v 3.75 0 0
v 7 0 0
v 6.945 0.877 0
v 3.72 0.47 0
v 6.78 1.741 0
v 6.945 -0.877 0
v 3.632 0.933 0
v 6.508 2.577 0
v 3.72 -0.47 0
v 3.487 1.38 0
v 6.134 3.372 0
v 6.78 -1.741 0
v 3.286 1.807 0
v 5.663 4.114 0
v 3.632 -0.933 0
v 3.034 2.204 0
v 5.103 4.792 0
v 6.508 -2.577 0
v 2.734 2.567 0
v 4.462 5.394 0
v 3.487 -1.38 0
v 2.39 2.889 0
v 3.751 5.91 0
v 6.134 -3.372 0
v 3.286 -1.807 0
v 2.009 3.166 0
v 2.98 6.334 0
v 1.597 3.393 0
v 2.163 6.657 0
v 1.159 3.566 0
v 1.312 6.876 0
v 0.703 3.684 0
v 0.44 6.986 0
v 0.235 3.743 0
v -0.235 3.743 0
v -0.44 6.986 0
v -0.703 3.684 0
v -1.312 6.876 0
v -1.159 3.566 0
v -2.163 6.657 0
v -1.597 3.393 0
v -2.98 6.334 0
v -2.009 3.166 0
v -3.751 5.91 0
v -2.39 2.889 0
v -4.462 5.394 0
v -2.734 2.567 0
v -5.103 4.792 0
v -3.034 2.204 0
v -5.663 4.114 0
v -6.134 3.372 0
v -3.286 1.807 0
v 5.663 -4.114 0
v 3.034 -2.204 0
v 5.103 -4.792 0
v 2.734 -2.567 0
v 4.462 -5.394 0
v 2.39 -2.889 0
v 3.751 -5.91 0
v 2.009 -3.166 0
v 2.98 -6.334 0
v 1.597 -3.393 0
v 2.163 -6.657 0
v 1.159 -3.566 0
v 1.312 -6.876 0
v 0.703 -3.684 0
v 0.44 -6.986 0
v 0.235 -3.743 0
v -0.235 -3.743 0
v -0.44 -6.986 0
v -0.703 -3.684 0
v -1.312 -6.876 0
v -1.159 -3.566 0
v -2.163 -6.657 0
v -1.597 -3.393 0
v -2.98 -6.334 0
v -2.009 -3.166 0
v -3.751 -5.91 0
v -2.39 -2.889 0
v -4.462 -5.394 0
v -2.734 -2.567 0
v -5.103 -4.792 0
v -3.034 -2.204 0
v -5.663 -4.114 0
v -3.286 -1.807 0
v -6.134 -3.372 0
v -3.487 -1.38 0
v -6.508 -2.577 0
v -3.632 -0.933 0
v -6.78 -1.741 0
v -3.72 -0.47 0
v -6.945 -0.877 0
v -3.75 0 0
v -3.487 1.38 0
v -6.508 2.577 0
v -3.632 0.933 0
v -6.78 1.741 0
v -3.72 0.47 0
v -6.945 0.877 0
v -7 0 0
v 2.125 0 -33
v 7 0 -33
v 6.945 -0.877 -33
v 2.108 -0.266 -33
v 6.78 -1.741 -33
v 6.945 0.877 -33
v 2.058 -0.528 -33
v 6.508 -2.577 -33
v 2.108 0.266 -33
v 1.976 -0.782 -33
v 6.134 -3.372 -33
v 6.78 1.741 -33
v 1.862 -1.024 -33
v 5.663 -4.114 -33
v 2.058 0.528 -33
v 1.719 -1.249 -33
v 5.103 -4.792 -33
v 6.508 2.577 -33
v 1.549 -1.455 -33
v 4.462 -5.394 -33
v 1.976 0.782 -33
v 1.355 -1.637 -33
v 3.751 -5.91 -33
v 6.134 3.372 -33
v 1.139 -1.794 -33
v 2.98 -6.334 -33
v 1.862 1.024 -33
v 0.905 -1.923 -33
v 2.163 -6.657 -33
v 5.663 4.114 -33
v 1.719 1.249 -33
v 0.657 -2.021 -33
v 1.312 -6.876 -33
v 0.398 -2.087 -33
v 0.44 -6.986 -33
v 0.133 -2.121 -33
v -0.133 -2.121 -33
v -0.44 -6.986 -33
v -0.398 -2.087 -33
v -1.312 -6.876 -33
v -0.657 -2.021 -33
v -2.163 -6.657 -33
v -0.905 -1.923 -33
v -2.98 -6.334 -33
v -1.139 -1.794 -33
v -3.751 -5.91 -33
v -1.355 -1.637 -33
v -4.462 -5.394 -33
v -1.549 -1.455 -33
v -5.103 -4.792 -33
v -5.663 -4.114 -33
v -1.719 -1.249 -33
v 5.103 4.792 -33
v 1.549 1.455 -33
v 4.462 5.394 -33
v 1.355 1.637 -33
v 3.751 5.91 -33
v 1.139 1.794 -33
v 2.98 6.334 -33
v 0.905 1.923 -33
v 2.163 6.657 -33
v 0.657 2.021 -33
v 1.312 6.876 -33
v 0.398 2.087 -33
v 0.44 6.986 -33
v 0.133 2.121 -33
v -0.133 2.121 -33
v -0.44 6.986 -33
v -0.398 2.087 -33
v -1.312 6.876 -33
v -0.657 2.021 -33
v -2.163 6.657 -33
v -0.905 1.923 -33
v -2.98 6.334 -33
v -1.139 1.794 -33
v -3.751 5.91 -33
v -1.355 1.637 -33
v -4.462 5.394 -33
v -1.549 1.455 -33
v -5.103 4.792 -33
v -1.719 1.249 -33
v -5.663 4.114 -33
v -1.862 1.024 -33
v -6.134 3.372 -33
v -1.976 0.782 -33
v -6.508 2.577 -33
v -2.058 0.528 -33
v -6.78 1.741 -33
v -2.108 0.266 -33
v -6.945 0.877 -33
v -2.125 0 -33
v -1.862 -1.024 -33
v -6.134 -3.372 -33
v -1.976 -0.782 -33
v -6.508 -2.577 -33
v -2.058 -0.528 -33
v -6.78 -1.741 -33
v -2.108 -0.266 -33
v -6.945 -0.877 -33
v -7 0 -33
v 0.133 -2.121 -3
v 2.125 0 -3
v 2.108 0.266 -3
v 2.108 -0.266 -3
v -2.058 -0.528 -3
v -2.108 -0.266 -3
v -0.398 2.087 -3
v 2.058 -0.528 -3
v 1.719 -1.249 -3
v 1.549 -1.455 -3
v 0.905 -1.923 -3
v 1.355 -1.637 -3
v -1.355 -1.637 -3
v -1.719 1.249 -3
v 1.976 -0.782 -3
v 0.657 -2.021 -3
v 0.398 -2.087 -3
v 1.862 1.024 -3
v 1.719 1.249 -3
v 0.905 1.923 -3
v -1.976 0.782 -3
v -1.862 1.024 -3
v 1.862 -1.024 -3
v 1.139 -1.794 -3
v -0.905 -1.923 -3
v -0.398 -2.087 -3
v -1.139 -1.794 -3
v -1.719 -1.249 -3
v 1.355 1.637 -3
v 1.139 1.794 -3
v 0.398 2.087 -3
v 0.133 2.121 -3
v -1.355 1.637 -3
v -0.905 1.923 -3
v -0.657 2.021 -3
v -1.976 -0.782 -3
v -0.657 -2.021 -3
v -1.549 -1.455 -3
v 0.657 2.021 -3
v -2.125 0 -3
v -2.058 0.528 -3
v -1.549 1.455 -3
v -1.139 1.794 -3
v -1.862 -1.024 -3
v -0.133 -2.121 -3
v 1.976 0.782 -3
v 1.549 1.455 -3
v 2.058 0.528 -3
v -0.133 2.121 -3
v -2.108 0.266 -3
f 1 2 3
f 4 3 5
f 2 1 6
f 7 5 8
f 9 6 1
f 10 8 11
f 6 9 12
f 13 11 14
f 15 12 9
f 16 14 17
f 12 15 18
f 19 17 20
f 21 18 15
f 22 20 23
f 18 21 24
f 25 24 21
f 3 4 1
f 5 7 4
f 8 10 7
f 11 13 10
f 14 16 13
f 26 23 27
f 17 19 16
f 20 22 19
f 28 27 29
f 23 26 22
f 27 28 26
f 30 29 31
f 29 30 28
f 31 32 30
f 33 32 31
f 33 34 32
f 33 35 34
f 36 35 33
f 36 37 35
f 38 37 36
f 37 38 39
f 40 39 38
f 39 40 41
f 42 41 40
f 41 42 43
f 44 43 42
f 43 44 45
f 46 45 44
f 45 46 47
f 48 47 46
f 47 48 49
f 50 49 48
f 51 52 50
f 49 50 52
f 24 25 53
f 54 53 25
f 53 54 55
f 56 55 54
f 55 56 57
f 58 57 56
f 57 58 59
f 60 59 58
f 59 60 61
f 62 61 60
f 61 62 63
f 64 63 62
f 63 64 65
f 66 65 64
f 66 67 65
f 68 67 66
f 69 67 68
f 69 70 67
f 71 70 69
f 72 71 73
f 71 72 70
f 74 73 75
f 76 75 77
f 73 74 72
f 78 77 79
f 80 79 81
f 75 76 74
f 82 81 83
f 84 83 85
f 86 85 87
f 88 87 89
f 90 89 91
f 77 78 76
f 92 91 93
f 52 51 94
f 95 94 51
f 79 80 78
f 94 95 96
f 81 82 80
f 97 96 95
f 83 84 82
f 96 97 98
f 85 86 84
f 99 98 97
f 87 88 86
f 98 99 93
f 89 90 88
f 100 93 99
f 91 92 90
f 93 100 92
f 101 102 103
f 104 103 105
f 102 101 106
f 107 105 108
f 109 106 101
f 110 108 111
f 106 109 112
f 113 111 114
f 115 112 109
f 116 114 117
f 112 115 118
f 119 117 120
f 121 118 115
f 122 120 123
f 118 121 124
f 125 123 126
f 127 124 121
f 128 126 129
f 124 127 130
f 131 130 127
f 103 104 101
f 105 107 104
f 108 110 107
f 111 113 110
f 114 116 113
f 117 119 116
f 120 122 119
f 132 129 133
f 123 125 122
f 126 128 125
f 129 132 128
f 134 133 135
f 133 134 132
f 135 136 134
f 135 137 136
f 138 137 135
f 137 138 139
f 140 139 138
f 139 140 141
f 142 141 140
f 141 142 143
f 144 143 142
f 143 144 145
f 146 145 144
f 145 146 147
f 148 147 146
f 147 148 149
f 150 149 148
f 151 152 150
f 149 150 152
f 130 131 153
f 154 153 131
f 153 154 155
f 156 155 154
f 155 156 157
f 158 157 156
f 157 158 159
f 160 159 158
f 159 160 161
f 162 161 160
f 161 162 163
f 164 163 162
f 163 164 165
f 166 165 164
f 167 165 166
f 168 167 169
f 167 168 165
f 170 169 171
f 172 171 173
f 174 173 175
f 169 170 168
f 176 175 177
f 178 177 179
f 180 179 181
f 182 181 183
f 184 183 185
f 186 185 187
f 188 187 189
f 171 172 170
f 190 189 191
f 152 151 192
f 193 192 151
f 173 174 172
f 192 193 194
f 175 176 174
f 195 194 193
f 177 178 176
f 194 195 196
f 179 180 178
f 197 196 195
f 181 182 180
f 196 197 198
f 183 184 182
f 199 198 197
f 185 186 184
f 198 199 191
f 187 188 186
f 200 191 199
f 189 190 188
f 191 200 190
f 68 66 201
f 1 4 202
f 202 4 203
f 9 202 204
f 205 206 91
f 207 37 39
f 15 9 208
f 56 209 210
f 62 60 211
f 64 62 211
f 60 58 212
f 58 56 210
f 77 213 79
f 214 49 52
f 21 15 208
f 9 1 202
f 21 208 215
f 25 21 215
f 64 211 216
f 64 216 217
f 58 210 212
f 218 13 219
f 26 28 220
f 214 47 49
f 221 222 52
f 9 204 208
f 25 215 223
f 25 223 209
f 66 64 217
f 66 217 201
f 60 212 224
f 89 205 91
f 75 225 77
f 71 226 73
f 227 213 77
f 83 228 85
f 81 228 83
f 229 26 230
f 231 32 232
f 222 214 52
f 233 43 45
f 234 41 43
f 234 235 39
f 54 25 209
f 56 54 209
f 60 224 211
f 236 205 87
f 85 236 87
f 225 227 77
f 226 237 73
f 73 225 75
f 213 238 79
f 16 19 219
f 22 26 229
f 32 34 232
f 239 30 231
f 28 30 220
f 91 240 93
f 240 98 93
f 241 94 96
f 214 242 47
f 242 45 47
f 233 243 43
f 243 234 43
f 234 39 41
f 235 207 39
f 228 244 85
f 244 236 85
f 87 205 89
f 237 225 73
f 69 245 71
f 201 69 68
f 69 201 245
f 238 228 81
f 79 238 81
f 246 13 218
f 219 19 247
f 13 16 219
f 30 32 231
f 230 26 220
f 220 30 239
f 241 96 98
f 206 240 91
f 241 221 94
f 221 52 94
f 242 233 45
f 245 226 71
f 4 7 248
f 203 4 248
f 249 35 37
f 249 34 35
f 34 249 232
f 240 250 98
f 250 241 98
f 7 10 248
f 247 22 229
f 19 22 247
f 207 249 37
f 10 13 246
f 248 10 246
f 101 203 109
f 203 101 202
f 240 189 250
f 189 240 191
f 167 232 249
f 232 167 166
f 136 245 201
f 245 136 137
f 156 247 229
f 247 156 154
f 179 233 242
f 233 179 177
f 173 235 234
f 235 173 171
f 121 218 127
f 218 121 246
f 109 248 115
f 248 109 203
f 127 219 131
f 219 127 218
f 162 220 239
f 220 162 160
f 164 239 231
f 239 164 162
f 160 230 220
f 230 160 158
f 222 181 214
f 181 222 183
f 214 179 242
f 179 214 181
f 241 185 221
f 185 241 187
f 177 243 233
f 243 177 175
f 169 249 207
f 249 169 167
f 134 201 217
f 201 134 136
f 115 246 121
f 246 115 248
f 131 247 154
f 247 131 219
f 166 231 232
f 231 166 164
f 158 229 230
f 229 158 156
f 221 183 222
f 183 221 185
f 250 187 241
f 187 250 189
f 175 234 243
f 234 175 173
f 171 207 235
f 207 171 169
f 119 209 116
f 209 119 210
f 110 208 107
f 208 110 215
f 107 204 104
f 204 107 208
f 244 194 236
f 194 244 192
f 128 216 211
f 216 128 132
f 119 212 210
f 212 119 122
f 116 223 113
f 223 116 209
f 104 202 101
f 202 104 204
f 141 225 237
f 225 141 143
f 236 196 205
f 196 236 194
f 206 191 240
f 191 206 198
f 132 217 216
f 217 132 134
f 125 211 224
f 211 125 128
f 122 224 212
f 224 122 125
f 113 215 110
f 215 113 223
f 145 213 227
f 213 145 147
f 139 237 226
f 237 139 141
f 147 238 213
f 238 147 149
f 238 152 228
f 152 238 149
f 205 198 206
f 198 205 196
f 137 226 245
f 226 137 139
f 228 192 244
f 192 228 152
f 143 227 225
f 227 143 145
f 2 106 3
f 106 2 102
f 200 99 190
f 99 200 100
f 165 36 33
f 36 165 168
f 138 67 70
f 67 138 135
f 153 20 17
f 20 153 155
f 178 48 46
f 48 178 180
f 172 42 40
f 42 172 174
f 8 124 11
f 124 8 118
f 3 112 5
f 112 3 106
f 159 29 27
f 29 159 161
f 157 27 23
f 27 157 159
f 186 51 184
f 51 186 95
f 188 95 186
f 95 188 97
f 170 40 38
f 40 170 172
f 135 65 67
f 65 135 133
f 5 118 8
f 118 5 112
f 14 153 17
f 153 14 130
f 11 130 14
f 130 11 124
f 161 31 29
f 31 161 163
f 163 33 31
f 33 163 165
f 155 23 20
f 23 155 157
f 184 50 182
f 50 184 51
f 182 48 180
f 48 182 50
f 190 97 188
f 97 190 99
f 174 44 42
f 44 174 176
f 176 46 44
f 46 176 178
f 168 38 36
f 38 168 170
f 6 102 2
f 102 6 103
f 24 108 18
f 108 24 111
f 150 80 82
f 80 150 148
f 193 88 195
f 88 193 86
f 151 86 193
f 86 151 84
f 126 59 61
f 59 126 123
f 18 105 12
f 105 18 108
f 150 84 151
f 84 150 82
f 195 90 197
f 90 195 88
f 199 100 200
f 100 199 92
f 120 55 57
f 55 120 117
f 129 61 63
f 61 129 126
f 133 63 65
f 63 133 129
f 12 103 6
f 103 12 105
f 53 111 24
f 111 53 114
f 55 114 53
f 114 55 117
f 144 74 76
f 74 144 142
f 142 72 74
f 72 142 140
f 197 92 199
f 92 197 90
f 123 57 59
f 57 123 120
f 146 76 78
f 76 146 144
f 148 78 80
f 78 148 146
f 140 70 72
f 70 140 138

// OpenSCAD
$fn = 50;


difference() {
	union() {
		translate(v = [0, 0, -33.0000000000]) {
			cylinder(h = 33, r = 7.0000000000);
		}
		cylinder(h = 0, r = 17.0000000000);
	}
	union() {
		translate(v = [0, 0, 0]) {
			rotate(a = [0, 0, 0]) {
				difference() {
					union() {
						#translate(v = [0, 0, -33.0000000000]) {
							cylinder(h = 33, r = 2.0000000000);
						}
						#translate(v = [0, 0, -3]) {
							cylinder(h = 3, r = 7.0000000000, r1 = 2.1250000000, r2 = 3.7500000000);
						}
						#translate(v = [0, 0, -33.0000000000]) {
							cylinder(h = 33, r = 2.1250000000);
						}
						#translate(v = [0, 0, -33.0000000000]) {
							cylinder(h = 33, r = 2.0000000000);
						}
					}
					union();
				}
			}
		}
	}
}
